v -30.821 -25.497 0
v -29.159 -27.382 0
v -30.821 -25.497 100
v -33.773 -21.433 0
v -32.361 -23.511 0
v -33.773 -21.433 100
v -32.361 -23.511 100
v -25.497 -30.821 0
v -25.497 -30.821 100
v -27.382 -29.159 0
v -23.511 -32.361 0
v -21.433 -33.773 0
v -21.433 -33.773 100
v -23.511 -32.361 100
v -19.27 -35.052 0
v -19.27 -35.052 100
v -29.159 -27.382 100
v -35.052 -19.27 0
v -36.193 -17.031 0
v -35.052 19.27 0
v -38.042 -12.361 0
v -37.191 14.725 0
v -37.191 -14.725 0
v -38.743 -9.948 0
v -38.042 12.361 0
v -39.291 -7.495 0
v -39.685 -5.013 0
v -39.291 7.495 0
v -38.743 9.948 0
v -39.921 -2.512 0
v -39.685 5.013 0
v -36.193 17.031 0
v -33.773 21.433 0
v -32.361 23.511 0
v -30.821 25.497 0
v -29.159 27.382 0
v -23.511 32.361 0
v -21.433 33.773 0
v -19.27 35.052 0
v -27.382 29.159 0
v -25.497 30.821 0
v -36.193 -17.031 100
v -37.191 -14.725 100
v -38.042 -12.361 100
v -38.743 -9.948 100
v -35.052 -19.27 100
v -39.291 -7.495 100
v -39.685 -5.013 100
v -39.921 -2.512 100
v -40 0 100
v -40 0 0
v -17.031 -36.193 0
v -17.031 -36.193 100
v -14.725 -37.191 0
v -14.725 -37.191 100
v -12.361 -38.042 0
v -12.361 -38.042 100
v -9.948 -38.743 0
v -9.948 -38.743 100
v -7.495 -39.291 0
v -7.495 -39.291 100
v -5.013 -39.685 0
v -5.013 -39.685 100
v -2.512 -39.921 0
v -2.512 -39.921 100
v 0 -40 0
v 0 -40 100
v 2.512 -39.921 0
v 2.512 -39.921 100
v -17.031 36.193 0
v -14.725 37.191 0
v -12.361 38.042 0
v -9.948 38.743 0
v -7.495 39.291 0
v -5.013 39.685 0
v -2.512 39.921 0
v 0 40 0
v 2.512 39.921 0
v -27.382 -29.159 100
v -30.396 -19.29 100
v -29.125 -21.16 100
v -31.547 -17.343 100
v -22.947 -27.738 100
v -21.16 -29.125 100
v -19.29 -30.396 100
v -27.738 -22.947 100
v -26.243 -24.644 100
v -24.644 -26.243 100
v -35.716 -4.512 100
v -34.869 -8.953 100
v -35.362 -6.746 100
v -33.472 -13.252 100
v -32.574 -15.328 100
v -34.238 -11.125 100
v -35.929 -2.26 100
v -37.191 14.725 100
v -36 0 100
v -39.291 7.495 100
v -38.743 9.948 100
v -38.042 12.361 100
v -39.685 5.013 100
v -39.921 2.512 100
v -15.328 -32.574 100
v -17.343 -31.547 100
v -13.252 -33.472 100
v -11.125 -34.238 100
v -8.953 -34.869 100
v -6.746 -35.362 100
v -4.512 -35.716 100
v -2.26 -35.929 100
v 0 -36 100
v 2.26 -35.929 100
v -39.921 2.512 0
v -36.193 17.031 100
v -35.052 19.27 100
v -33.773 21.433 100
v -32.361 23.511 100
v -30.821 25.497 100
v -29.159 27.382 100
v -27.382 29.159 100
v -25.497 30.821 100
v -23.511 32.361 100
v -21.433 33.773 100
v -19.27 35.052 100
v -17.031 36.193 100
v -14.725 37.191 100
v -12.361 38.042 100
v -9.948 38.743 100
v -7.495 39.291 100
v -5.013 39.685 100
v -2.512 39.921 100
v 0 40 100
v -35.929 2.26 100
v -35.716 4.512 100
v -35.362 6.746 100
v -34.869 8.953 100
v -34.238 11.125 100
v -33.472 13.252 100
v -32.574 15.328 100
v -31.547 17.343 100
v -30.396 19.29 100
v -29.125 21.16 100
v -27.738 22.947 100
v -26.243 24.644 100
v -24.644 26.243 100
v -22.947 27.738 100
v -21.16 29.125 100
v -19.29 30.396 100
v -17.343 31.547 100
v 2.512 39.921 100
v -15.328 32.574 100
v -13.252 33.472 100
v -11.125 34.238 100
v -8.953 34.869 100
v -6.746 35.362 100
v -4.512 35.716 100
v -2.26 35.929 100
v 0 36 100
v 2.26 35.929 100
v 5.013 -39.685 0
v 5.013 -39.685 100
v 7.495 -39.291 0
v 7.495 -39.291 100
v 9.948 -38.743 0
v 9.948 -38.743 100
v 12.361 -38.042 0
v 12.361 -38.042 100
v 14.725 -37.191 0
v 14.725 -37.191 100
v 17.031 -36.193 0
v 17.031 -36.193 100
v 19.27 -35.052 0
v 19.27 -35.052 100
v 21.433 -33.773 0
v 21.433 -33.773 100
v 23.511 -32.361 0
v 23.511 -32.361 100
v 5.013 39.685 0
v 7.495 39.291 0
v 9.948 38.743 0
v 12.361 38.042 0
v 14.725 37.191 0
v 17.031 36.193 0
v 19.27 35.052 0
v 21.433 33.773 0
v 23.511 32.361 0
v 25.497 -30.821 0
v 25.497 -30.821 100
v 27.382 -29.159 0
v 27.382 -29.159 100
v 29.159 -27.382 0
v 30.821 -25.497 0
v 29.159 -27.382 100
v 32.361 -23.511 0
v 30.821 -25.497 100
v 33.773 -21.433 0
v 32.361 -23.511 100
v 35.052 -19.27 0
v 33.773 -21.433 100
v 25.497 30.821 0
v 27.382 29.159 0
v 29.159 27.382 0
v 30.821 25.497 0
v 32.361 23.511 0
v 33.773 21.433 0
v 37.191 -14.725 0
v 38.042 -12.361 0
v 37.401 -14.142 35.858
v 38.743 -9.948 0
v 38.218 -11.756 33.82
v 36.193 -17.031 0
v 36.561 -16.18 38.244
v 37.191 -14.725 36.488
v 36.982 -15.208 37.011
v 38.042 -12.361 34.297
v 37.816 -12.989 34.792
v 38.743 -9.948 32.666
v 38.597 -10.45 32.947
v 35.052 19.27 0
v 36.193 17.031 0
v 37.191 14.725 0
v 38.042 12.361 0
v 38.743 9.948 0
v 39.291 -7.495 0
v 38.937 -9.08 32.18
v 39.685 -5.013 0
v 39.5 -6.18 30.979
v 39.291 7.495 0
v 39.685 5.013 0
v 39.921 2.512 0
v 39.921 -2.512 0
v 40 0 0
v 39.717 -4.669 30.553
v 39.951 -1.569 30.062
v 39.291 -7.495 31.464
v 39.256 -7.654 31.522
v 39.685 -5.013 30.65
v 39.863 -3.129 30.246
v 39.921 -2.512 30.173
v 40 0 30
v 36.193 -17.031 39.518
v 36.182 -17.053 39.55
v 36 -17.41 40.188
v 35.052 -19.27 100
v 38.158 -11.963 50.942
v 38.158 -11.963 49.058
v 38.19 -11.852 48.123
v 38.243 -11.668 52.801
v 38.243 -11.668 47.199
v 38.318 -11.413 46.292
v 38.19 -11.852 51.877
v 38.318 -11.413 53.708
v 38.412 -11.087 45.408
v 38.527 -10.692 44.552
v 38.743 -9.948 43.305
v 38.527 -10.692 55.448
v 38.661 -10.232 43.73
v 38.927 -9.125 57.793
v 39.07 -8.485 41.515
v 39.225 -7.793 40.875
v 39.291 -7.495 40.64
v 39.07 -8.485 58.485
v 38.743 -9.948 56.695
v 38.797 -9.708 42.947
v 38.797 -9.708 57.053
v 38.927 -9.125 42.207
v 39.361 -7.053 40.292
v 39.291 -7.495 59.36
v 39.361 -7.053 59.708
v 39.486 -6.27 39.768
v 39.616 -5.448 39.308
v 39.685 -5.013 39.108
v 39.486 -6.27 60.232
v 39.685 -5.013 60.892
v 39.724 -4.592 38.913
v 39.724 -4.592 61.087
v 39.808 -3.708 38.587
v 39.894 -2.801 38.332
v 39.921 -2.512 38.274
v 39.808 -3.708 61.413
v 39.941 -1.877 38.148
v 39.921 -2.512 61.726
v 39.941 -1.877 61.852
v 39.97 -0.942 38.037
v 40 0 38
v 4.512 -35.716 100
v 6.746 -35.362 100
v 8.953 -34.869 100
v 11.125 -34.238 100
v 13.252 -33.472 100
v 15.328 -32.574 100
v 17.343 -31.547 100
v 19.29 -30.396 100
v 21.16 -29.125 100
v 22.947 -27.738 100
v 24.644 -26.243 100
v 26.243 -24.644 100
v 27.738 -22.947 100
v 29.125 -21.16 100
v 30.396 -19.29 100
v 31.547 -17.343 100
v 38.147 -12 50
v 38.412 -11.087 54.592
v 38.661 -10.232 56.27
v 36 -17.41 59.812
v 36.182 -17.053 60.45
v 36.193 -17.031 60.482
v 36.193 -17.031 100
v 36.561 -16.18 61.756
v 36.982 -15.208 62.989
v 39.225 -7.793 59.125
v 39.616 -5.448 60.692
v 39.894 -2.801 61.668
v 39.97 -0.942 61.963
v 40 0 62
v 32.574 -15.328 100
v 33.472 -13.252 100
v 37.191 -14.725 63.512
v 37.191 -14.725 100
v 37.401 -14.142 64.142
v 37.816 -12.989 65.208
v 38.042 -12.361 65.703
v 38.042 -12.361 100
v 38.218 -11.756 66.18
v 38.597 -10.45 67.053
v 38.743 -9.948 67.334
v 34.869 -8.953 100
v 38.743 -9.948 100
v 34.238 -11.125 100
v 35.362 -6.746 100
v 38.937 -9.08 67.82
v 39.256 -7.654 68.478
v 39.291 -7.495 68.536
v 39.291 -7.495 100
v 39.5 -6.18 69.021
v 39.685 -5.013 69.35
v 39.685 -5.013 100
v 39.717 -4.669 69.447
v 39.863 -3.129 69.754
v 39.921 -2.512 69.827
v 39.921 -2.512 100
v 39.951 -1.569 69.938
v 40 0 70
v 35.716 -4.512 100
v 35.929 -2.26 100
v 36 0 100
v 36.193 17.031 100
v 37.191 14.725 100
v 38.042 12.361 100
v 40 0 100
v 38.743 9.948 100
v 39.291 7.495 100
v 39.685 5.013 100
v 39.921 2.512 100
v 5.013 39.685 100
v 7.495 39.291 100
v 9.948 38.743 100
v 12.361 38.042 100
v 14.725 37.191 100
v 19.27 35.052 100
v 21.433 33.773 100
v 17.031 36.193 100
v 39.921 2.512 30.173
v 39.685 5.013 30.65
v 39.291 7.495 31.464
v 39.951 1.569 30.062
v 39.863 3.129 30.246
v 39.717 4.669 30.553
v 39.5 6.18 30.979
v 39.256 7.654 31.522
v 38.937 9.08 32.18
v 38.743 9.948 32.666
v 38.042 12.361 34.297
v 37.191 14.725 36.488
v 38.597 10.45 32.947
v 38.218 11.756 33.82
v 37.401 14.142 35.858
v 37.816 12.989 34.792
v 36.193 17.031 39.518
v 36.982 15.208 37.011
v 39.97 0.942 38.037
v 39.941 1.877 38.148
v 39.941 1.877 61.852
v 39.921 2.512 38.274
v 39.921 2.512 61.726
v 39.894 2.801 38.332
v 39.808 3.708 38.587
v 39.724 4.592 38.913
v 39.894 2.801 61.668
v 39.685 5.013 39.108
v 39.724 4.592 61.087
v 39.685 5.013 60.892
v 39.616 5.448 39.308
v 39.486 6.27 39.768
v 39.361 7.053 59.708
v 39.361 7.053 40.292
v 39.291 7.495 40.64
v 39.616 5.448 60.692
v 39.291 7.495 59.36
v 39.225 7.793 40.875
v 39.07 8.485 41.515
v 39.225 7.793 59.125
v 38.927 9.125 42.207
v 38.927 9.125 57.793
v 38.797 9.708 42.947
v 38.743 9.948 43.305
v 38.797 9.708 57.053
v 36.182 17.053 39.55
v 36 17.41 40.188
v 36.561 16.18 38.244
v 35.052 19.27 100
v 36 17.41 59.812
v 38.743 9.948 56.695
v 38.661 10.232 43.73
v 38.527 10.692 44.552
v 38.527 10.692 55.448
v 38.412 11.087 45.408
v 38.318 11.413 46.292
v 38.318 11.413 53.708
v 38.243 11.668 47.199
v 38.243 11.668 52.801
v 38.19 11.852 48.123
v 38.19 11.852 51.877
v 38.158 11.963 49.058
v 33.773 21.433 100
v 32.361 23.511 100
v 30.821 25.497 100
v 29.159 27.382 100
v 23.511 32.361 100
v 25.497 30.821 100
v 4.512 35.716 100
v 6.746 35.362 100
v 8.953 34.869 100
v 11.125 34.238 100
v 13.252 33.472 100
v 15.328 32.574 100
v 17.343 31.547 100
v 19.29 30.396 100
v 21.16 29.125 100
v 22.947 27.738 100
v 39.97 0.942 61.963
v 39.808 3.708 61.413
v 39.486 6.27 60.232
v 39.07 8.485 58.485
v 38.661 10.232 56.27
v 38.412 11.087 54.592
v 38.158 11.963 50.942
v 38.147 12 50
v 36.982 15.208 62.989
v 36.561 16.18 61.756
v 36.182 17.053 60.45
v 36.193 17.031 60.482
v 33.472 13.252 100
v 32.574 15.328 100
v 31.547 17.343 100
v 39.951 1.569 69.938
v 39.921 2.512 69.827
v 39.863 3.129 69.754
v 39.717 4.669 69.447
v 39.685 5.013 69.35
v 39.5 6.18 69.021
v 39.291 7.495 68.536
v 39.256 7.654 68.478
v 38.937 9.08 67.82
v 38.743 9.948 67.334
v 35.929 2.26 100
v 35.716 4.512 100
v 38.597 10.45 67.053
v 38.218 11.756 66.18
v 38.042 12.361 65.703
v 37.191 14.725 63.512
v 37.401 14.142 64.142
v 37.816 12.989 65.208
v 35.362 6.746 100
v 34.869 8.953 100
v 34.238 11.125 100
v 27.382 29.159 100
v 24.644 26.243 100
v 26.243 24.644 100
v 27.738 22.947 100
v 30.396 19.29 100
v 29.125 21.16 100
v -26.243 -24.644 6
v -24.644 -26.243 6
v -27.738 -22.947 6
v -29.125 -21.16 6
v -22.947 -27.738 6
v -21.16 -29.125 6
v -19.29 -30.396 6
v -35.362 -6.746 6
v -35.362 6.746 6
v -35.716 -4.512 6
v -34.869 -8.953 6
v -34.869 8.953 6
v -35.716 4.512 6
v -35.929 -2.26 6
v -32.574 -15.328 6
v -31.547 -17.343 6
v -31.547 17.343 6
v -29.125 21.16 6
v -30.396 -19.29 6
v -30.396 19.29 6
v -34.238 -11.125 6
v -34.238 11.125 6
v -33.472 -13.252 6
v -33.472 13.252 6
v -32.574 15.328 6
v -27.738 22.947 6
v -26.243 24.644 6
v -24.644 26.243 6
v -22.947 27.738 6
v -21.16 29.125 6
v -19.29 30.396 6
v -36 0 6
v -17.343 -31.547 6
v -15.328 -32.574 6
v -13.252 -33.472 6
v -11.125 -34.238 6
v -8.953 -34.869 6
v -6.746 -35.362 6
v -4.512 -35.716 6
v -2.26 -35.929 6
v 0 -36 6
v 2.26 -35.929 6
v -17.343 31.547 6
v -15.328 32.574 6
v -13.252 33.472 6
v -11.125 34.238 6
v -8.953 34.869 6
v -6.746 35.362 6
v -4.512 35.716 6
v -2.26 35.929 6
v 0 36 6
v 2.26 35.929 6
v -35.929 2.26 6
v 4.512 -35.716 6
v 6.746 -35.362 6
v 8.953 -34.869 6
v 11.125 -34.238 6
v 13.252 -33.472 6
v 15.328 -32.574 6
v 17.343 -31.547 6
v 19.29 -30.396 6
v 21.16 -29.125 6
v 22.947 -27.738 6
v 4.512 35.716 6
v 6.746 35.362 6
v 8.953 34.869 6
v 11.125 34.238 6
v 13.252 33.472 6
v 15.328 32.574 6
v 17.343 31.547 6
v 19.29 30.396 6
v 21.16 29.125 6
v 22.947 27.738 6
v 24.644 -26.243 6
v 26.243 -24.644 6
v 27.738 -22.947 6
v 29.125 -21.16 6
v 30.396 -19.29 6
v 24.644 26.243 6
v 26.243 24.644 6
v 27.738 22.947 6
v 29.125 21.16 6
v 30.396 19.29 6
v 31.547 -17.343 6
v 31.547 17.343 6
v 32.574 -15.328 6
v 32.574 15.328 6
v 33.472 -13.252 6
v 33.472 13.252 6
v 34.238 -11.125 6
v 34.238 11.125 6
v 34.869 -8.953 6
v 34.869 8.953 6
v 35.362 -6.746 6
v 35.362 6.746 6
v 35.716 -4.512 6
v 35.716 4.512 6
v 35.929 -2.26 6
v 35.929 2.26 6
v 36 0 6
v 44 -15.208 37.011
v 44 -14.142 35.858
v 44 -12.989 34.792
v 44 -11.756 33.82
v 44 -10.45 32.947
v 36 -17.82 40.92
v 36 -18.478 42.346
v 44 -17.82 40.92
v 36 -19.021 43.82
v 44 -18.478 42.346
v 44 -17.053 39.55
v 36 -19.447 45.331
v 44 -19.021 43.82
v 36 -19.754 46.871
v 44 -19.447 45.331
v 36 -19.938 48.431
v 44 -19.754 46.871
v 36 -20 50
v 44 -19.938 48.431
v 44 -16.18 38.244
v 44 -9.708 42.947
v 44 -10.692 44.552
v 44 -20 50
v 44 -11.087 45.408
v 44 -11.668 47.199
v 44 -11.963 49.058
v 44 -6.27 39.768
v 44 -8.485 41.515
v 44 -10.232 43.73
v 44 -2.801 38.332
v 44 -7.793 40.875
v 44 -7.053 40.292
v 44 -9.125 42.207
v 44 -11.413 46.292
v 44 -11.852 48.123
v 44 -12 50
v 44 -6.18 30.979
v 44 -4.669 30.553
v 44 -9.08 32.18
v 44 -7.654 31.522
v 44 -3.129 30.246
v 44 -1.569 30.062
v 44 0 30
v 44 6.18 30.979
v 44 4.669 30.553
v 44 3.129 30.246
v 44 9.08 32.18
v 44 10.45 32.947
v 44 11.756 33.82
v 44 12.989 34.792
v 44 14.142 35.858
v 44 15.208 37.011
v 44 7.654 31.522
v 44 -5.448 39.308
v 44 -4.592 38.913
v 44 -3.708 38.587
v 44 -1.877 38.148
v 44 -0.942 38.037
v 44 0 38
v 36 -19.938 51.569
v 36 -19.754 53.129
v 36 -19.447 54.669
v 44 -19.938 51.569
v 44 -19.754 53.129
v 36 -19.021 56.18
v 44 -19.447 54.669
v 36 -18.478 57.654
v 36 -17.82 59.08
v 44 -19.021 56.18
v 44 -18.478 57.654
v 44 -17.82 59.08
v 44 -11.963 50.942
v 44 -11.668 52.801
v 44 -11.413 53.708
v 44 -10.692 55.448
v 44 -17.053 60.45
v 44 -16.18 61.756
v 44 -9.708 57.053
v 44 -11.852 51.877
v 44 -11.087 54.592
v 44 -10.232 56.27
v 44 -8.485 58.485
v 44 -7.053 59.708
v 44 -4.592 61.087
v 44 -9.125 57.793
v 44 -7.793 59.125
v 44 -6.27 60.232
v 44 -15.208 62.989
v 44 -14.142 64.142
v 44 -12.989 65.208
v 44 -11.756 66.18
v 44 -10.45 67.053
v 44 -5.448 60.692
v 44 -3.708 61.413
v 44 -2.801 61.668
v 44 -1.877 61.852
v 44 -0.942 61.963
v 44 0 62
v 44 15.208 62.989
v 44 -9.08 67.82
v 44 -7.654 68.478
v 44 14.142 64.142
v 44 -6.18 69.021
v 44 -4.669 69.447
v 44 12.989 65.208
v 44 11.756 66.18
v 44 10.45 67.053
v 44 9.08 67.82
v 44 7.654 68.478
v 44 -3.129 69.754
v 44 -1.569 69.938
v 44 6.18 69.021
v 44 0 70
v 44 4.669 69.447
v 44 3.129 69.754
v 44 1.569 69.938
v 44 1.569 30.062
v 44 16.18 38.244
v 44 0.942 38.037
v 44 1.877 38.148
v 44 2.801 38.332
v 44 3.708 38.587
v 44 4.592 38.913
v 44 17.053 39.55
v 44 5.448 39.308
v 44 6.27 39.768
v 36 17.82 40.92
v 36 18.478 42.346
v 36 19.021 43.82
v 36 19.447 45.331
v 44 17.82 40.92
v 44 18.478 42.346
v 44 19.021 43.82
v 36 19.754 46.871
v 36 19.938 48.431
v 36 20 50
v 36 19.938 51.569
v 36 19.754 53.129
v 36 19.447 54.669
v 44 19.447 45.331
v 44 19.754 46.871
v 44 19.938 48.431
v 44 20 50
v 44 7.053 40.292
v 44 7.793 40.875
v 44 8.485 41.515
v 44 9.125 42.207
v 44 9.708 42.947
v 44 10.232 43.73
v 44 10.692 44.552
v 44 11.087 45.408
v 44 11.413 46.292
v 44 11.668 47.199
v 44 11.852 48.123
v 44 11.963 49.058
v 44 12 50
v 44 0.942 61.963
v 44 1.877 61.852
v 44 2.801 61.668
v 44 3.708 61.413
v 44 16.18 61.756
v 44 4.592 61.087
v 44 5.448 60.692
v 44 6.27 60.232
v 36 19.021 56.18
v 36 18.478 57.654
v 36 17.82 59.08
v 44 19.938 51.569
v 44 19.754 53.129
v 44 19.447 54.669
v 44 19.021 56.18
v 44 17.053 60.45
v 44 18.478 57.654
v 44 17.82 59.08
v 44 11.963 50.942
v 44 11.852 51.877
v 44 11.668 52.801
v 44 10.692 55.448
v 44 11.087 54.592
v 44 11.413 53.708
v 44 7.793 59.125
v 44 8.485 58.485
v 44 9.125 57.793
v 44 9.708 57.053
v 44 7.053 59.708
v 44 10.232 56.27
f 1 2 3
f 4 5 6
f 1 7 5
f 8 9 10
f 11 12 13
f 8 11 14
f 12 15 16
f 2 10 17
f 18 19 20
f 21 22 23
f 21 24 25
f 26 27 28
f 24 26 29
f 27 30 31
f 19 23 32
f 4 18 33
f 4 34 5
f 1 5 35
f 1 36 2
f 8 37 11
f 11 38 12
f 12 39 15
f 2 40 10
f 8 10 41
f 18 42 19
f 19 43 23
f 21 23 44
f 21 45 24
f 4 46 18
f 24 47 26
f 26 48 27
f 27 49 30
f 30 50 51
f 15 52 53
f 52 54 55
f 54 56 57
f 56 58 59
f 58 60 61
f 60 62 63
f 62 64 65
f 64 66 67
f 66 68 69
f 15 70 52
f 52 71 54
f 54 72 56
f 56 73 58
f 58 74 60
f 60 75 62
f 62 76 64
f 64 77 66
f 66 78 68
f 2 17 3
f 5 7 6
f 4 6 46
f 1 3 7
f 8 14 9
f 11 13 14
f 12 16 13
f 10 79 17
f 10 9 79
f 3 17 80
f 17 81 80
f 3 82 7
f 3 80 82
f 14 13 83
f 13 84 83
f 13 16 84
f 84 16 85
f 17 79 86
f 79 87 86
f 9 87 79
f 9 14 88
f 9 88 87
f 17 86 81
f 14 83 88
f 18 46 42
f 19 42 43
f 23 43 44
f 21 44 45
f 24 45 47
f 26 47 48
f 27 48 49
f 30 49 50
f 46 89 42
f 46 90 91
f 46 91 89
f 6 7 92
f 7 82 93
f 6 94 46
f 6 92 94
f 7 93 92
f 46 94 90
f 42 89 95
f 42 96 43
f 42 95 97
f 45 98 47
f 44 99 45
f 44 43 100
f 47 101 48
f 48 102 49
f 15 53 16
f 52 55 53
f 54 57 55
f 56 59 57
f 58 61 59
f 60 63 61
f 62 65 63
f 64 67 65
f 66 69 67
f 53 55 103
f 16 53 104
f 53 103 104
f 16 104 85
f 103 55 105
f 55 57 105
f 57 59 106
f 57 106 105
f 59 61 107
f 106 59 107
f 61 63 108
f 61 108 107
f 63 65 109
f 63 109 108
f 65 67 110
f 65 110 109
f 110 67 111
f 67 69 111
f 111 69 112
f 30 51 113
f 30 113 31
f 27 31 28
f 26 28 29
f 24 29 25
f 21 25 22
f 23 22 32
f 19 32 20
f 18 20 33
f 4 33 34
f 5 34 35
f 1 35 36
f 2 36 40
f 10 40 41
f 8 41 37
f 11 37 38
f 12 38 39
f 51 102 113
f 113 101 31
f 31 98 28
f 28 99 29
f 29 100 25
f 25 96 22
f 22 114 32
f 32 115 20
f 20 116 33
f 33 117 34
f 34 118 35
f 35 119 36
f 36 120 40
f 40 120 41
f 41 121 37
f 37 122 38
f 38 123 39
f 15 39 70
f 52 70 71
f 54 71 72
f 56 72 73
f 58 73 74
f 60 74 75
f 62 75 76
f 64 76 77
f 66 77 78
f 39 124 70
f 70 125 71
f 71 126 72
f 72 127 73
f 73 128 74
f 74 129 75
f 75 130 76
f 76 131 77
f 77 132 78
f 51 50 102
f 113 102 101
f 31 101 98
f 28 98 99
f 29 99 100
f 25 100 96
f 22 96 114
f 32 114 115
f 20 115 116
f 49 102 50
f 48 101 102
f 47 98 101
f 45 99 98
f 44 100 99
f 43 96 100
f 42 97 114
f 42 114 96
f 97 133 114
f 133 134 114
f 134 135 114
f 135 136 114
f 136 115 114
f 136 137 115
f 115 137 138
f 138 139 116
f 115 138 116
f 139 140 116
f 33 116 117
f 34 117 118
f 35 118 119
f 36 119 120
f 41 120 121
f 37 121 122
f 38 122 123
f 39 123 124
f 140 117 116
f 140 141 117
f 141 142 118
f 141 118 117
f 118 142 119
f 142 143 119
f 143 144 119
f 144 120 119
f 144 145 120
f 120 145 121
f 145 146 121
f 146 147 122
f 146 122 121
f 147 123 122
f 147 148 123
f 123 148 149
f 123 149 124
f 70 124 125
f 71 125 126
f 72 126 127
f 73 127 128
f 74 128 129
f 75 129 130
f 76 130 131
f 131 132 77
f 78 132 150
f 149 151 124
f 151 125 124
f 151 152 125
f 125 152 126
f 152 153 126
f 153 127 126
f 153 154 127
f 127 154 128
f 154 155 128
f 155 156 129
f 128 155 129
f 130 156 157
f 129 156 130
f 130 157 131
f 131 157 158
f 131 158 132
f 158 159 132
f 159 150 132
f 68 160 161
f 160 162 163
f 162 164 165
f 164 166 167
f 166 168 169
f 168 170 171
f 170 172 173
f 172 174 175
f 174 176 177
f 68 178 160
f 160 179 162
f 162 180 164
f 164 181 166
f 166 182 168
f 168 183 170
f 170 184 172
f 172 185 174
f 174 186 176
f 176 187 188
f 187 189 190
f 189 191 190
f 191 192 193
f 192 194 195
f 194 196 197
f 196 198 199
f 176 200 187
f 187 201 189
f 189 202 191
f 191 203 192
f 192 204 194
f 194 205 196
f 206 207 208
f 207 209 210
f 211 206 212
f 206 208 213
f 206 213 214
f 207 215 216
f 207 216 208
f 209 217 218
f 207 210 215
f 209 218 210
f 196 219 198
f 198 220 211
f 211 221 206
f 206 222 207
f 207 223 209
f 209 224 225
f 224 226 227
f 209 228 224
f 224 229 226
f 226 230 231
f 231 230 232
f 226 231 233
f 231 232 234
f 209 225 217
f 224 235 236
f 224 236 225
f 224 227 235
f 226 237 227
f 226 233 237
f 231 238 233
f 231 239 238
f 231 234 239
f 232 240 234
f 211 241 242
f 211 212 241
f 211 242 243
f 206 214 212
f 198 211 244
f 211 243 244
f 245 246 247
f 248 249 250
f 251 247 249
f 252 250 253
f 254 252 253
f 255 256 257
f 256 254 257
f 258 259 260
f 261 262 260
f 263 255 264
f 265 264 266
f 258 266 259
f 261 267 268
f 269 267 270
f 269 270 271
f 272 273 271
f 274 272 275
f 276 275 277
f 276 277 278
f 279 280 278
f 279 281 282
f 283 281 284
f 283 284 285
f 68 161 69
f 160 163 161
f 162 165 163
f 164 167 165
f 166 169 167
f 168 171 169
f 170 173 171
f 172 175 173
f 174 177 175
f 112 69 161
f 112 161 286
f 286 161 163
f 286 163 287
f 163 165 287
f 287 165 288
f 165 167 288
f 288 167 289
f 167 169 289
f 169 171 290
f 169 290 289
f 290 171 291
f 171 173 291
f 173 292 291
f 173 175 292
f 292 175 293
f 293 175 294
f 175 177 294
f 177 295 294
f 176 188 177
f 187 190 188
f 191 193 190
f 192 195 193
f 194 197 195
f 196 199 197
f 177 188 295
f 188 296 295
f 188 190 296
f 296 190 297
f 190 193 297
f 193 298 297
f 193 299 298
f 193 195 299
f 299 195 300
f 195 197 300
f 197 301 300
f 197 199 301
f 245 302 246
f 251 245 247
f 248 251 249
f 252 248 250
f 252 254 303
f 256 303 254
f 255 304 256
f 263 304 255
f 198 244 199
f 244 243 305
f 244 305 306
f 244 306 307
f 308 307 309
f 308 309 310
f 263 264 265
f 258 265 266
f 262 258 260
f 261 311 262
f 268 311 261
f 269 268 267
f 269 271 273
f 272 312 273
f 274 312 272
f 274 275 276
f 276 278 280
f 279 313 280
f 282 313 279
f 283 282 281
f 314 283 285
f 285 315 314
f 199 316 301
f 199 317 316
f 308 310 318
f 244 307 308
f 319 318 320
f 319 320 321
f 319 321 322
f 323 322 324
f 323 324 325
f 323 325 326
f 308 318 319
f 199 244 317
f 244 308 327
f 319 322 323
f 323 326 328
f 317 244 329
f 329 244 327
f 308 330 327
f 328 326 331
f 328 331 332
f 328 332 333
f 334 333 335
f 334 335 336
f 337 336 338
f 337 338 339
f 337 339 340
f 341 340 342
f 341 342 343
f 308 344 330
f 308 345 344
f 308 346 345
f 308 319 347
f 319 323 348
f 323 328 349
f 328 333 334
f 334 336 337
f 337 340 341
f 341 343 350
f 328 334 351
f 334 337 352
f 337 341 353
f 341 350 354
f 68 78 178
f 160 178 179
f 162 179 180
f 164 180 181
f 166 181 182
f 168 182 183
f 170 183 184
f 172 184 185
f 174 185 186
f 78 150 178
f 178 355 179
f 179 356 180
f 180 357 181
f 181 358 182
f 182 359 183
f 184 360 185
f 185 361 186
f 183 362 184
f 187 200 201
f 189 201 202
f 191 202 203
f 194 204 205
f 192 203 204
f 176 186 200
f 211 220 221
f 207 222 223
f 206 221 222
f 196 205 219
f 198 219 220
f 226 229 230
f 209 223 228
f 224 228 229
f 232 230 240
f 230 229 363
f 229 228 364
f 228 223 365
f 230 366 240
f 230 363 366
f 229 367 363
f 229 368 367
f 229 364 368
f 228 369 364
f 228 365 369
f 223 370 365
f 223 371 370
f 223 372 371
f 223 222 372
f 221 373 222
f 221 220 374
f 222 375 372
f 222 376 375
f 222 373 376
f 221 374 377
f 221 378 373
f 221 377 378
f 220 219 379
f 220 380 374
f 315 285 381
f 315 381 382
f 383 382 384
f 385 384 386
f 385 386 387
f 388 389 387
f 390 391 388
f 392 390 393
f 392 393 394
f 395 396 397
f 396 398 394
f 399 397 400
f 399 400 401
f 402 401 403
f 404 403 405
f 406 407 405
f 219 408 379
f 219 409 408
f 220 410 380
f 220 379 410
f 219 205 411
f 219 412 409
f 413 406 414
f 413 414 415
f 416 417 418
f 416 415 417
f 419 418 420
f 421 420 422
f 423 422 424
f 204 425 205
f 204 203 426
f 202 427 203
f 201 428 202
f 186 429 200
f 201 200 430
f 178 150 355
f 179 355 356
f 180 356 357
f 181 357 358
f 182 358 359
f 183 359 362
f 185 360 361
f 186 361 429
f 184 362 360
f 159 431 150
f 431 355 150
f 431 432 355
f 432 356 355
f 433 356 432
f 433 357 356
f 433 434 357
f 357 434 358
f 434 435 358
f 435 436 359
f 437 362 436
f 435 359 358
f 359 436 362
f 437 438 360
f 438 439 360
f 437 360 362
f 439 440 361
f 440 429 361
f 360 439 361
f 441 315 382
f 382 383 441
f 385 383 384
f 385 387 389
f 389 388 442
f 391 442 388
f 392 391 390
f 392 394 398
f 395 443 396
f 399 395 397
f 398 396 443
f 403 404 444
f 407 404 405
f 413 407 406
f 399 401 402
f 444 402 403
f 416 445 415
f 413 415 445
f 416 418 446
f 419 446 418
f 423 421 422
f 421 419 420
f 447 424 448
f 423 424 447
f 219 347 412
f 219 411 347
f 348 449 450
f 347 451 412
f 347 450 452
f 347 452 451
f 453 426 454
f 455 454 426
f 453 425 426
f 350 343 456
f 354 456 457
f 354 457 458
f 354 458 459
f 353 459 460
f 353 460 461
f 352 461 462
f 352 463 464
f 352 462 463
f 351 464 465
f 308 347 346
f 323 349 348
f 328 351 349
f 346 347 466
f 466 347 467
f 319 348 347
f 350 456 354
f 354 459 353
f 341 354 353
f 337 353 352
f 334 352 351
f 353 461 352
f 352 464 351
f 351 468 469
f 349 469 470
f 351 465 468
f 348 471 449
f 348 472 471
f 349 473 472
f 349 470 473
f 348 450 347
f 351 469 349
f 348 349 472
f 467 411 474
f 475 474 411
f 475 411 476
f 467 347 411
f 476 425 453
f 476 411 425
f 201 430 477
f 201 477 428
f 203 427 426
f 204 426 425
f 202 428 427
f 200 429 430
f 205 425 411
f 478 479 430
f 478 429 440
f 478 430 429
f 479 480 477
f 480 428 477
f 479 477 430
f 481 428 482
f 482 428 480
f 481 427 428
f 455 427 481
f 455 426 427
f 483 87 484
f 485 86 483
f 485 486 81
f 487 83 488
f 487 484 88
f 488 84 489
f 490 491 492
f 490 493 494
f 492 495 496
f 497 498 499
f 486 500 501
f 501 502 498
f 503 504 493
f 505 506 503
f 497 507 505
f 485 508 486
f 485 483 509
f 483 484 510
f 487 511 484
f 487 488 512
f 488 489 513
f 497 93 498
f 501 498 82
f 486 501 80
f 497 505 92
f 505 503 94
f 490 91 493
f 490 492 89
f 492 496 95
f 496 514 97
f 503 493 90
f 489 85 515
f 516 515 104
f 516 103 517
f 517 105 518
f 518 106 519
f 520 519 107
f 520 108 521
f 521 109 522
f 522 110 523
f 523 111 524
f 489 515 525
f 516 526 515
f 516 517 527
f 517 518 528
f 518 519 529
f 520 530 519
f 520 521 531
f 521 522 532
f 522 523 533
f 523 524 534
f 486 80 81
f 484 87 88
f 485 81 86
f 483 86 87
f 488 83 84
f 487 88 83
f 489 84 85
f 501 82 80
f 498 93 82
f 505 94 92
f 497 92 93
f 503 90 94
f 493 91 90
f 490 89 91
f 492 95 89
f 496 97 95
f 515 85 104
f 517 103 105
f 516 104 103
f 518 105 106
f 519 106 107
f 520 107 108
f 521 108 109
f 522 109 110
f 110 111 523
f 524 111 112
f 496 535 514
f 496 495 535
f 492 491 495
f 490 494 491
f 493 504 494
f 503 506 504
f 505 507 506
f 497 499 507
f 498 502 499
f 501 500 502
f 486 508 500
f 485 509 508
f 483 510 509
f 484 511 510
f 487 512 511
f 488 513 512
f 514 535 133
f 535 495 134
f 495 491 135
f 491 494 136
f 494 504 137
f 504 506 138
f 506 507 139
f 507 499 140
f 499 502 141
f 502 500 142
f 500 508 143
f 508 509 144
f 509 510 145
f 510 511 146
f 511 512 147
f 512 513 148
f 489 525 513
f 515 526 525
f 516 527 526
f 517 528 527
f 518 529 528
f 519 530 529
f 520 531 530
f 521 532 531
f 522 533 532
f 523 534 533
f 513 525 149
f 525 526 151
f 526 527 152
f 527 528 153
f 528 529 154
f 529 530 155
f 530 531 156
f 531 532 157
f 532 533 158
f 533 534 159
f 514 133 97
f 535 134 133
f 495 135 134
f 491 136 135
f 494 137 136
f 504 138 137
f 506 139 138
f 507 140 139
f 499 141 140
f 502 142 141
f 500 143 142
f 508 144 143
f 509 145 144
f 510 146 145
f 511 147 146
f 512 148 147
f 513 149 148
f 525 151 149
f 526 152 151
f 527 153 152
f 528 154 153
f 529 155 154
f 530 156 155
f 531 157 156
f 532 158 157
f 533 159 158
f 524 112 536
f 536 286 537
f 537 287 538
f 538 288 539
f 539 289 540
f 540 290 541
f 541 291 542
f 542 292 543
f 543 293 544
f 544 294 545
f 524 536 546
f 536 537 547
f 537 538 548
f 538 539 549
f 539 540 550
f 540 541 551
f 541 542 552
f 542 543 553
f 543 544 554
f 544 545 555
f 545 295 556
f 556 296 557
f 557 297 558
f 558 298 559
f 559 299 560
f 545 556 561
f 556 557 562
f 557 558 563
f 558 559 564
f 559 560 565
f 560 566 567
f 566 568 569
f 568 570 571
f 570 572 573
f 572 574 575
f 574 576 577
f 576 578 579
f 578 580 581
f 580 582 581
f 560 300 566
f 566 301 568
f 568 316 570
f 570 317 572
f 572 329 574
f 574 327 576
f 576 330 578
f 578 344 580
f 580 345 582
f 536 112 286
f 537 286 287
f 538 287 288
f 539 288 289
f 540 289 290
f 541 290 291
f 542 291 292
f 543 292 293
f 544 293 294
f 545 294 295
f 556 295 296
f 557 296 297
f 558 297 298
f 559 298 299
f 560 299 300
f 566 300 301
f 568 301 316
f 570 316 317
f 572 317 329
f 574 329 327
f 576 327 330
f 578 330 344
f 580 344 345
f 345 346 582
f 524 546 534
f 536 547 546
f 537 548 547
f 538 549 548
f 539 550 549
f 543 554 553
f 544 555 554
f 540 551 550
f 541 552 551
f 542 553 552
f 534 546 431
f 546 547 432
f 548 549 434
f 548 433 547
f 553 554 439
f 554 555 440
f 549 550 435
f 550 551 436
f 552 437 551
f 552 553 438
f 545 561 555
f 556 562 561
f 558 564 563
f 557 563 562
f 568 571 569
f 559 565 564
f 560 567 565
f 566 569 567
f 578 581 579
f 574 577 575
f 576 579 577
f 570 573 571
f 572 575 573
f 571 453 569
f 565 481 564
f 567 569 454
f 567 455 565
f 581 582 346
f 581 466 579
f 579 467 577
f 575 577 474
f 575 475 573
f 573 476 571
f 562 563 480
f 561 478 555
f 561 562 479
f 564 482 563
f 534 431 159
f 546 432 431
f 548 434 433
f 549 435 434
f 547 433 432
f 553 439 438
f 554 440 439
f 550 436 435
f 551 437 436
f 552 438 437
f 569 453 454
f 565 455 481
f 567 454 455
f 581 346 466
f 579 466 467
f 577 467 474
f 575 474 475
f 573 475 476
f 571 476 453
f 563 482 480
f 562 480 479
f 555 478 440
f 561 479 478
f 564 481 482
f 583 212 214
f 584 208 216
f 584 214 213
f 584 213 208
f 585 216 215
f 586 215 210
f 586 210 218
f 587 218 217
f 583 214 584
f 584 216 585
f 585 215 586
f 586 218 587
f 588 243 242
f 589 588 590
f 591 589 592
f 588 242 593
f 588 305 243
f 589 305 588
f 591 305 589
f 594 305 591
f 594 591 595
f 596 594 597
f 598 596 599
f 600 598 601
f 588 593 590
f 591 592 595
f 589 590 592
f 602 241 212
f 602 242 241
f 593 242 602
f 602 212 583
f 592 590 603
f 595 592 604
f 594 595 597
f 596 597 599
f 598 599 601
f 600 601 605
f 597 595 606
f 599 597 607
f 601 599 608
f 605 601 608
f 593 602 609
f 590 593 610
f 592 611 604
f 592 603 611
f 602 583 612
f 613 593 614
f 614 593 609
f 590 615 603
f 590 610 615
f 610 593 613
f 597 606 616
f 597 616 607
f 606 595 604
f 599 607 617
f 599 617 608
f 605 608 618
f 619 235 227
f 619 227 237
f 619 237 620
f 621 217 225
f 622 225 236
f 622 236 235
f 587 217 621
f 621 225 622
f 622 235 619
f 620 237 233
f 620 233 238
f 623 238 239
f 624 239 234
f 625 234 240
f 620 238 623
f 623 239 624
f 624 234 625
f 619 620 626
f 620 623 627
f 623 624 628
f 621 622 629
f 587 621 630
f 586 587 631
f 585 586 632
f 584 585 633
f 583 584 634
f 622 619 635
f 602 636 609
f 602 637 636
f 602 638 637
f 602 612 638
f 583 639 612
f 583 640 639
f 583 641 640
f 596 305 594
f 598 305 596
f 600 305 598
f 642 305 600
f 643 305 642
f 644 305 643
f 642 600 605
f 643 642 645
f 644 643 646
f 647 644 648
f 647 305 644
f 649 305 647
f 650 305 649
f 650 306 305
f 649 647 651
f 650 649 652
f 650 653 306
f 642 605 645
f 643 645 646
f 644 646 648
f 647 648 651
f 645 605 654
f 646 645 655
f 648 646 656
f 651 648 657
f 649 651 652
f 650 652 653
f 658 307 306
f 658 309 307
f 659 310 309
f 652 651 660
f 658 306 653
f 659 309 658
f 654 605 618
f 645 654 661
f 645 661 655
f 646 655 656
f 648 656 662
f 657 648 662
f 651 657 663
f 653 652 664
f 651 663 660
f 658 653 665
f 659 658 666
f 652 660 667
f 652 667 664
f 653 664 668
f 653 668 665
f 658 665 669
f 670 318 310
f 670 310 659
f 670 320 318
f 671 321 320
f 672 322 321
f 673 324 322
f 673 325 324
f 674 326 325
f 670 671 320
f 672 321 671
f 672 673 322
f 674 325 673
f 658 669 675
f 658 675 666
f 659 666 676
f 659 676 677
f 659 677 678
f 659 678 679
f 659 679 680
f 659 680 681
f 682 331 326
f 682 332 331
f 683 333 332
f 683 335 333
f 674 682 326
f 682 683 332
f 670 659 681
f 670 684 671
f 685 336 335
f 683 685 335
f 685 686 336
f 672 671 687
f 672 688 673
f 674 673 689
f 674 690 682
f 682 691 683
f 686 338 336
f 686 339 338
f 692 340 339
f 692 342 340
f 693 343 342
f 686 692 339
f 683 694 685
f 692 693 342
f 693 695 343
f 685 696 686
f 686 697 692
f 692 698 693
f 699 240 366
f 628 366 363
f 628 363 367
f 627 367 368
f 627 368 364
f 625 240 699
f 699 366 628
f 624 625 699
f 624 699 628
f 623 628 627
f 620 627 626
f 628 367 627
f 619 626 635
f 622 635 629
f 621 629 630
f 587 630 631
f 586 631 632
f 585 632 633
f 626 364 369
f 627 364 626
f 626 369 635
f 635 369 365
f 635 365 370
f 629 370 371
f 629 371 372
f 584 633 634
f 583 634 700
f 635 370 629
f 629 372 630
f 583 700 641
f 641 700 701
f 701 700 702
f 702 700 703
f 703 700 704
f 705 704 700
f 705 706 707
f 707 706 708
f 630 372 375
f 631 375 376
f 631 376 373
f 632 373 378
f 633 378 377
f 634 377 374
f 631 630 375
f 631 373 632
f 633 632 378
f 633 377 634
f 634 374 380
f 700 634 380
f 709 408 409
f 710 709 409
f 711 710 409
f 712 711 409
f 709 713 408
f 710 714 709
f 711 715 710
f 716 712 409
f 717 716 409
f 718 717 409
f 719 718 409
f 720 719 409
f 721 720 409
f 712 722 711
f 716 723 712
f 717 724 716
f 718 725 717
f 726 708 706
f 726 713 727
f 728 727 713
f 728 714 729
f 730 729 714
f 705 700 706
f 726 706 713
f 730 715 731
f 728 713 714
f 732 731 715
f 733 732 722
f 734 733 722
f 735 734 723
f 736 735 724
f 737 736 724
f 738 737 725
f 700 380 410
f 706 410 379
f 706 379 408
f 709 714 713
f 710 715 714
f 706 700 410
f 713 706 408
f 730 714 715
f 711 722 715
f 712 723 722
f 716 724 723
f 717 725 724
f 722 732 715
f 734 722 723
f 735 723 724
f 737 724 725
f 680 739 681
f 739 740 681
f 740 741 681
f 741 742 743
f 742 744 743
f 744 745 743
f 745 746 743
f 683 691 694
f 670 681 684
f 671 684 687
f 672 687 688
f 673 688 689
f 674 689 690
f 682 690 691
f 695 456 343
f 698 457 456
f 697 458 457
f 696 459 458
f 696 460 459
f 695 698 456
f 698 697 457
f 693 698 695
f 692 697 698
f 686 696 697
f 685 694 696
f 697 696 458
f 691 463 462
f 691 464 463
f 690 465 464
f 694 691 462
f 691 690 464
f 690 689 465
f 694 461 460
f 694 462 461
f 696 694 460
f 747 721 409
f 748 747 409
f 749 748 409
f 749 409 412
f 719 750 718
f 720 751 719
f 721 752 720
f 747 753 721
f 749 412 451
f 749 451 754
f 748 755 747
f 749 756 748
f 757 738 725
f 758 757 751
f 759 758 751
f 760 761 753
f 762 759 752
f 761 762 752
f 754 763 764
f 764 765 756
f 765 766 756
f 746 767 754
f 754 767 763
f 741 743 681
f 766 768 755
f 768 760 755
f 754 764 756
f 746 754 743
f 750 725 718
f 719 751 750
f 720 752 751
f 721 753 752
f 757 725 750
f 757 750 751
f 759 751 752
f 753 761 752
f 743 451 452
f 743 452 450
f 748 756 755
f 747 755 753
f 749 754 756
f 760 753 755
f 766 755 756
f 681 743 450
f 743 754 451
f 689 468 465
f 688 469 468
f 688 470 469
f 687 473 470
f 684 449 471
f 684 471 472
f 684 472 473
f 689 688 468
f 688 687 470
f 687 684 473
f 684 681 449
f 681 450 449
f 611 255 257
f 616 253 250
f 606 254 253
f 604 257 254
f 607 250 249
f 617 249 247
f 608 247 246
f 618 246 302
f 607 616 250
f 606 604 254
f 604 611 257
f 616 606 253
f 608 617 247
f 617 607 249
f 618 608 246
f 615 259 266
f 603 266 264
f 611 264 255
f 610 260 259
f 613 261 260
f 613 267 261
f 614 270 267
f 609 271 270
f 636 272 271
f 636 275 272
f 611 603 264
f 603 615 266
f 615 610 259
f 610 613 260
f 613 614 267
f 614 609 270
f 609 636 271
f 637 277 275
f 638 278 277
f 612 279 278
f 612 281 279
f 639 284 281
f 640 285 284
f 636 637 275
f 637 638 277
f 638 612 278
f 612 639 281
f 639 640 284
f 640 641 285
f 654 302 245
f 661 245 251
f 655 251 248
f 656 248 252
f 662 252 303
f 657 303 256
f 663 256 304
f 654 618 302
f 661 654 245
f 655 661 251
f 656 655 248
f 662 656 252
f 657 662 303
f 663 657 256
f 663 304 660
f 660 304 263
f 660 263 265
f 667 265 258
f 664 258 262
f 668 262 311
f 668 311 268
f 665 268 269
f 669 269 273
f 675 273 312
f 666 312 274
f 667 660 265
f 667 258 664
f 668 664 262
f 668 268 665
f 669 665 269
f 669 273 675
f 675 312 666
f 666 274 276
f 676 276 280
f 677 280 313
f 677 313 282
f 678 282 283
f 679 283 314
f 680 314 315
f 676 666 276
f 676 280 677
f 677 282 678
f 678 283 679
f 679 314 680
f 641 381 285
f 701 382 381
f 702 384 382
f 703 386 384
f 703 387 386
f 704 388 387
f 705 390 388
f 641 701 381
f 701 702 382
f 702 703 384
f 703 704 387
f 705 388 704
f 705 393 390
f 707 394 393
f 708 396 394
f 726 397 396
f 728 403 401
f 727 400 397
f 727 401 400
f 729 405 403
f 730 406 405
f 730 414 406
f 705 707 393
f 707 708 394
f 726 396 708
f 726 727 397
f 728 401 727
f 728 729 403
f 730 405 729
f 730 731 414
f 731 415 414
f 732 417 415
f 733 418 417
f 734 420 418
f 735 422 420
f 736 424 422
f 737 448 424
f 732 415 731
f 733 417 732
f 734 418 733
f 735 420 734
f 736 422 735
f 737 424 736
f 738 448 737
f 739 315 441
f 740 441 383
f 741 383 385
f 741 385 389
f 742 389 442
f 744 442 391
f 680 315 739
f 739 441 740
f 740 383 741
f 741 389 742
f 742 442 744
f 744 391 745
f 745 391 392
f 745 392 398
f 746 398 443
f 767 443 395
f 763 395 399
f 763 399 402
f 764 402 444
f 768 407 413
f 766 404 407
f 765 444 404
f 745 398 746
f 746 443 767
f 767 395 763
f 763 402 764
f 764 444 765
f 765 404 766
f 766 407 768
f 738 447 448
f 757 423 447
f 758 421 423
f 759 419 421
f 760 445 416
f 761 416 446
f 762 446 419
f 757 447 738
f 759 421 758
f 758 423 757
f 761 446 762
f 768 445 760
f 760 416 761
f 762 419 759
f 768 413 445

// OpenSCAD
difference() {
    cylinder(h=100, d=80, $fn=100);
    translate([0,0,6])
        cylinder(h=95, d=72, $fn=100);
}

// Handle
translate([40, 0, 50])
rotate([0,90,0])
difference() {
    cylinder(h=8, r=20, center=true, $fn=80);
    cylinder(h=10, r=12, center=true, $fn=80);
}
